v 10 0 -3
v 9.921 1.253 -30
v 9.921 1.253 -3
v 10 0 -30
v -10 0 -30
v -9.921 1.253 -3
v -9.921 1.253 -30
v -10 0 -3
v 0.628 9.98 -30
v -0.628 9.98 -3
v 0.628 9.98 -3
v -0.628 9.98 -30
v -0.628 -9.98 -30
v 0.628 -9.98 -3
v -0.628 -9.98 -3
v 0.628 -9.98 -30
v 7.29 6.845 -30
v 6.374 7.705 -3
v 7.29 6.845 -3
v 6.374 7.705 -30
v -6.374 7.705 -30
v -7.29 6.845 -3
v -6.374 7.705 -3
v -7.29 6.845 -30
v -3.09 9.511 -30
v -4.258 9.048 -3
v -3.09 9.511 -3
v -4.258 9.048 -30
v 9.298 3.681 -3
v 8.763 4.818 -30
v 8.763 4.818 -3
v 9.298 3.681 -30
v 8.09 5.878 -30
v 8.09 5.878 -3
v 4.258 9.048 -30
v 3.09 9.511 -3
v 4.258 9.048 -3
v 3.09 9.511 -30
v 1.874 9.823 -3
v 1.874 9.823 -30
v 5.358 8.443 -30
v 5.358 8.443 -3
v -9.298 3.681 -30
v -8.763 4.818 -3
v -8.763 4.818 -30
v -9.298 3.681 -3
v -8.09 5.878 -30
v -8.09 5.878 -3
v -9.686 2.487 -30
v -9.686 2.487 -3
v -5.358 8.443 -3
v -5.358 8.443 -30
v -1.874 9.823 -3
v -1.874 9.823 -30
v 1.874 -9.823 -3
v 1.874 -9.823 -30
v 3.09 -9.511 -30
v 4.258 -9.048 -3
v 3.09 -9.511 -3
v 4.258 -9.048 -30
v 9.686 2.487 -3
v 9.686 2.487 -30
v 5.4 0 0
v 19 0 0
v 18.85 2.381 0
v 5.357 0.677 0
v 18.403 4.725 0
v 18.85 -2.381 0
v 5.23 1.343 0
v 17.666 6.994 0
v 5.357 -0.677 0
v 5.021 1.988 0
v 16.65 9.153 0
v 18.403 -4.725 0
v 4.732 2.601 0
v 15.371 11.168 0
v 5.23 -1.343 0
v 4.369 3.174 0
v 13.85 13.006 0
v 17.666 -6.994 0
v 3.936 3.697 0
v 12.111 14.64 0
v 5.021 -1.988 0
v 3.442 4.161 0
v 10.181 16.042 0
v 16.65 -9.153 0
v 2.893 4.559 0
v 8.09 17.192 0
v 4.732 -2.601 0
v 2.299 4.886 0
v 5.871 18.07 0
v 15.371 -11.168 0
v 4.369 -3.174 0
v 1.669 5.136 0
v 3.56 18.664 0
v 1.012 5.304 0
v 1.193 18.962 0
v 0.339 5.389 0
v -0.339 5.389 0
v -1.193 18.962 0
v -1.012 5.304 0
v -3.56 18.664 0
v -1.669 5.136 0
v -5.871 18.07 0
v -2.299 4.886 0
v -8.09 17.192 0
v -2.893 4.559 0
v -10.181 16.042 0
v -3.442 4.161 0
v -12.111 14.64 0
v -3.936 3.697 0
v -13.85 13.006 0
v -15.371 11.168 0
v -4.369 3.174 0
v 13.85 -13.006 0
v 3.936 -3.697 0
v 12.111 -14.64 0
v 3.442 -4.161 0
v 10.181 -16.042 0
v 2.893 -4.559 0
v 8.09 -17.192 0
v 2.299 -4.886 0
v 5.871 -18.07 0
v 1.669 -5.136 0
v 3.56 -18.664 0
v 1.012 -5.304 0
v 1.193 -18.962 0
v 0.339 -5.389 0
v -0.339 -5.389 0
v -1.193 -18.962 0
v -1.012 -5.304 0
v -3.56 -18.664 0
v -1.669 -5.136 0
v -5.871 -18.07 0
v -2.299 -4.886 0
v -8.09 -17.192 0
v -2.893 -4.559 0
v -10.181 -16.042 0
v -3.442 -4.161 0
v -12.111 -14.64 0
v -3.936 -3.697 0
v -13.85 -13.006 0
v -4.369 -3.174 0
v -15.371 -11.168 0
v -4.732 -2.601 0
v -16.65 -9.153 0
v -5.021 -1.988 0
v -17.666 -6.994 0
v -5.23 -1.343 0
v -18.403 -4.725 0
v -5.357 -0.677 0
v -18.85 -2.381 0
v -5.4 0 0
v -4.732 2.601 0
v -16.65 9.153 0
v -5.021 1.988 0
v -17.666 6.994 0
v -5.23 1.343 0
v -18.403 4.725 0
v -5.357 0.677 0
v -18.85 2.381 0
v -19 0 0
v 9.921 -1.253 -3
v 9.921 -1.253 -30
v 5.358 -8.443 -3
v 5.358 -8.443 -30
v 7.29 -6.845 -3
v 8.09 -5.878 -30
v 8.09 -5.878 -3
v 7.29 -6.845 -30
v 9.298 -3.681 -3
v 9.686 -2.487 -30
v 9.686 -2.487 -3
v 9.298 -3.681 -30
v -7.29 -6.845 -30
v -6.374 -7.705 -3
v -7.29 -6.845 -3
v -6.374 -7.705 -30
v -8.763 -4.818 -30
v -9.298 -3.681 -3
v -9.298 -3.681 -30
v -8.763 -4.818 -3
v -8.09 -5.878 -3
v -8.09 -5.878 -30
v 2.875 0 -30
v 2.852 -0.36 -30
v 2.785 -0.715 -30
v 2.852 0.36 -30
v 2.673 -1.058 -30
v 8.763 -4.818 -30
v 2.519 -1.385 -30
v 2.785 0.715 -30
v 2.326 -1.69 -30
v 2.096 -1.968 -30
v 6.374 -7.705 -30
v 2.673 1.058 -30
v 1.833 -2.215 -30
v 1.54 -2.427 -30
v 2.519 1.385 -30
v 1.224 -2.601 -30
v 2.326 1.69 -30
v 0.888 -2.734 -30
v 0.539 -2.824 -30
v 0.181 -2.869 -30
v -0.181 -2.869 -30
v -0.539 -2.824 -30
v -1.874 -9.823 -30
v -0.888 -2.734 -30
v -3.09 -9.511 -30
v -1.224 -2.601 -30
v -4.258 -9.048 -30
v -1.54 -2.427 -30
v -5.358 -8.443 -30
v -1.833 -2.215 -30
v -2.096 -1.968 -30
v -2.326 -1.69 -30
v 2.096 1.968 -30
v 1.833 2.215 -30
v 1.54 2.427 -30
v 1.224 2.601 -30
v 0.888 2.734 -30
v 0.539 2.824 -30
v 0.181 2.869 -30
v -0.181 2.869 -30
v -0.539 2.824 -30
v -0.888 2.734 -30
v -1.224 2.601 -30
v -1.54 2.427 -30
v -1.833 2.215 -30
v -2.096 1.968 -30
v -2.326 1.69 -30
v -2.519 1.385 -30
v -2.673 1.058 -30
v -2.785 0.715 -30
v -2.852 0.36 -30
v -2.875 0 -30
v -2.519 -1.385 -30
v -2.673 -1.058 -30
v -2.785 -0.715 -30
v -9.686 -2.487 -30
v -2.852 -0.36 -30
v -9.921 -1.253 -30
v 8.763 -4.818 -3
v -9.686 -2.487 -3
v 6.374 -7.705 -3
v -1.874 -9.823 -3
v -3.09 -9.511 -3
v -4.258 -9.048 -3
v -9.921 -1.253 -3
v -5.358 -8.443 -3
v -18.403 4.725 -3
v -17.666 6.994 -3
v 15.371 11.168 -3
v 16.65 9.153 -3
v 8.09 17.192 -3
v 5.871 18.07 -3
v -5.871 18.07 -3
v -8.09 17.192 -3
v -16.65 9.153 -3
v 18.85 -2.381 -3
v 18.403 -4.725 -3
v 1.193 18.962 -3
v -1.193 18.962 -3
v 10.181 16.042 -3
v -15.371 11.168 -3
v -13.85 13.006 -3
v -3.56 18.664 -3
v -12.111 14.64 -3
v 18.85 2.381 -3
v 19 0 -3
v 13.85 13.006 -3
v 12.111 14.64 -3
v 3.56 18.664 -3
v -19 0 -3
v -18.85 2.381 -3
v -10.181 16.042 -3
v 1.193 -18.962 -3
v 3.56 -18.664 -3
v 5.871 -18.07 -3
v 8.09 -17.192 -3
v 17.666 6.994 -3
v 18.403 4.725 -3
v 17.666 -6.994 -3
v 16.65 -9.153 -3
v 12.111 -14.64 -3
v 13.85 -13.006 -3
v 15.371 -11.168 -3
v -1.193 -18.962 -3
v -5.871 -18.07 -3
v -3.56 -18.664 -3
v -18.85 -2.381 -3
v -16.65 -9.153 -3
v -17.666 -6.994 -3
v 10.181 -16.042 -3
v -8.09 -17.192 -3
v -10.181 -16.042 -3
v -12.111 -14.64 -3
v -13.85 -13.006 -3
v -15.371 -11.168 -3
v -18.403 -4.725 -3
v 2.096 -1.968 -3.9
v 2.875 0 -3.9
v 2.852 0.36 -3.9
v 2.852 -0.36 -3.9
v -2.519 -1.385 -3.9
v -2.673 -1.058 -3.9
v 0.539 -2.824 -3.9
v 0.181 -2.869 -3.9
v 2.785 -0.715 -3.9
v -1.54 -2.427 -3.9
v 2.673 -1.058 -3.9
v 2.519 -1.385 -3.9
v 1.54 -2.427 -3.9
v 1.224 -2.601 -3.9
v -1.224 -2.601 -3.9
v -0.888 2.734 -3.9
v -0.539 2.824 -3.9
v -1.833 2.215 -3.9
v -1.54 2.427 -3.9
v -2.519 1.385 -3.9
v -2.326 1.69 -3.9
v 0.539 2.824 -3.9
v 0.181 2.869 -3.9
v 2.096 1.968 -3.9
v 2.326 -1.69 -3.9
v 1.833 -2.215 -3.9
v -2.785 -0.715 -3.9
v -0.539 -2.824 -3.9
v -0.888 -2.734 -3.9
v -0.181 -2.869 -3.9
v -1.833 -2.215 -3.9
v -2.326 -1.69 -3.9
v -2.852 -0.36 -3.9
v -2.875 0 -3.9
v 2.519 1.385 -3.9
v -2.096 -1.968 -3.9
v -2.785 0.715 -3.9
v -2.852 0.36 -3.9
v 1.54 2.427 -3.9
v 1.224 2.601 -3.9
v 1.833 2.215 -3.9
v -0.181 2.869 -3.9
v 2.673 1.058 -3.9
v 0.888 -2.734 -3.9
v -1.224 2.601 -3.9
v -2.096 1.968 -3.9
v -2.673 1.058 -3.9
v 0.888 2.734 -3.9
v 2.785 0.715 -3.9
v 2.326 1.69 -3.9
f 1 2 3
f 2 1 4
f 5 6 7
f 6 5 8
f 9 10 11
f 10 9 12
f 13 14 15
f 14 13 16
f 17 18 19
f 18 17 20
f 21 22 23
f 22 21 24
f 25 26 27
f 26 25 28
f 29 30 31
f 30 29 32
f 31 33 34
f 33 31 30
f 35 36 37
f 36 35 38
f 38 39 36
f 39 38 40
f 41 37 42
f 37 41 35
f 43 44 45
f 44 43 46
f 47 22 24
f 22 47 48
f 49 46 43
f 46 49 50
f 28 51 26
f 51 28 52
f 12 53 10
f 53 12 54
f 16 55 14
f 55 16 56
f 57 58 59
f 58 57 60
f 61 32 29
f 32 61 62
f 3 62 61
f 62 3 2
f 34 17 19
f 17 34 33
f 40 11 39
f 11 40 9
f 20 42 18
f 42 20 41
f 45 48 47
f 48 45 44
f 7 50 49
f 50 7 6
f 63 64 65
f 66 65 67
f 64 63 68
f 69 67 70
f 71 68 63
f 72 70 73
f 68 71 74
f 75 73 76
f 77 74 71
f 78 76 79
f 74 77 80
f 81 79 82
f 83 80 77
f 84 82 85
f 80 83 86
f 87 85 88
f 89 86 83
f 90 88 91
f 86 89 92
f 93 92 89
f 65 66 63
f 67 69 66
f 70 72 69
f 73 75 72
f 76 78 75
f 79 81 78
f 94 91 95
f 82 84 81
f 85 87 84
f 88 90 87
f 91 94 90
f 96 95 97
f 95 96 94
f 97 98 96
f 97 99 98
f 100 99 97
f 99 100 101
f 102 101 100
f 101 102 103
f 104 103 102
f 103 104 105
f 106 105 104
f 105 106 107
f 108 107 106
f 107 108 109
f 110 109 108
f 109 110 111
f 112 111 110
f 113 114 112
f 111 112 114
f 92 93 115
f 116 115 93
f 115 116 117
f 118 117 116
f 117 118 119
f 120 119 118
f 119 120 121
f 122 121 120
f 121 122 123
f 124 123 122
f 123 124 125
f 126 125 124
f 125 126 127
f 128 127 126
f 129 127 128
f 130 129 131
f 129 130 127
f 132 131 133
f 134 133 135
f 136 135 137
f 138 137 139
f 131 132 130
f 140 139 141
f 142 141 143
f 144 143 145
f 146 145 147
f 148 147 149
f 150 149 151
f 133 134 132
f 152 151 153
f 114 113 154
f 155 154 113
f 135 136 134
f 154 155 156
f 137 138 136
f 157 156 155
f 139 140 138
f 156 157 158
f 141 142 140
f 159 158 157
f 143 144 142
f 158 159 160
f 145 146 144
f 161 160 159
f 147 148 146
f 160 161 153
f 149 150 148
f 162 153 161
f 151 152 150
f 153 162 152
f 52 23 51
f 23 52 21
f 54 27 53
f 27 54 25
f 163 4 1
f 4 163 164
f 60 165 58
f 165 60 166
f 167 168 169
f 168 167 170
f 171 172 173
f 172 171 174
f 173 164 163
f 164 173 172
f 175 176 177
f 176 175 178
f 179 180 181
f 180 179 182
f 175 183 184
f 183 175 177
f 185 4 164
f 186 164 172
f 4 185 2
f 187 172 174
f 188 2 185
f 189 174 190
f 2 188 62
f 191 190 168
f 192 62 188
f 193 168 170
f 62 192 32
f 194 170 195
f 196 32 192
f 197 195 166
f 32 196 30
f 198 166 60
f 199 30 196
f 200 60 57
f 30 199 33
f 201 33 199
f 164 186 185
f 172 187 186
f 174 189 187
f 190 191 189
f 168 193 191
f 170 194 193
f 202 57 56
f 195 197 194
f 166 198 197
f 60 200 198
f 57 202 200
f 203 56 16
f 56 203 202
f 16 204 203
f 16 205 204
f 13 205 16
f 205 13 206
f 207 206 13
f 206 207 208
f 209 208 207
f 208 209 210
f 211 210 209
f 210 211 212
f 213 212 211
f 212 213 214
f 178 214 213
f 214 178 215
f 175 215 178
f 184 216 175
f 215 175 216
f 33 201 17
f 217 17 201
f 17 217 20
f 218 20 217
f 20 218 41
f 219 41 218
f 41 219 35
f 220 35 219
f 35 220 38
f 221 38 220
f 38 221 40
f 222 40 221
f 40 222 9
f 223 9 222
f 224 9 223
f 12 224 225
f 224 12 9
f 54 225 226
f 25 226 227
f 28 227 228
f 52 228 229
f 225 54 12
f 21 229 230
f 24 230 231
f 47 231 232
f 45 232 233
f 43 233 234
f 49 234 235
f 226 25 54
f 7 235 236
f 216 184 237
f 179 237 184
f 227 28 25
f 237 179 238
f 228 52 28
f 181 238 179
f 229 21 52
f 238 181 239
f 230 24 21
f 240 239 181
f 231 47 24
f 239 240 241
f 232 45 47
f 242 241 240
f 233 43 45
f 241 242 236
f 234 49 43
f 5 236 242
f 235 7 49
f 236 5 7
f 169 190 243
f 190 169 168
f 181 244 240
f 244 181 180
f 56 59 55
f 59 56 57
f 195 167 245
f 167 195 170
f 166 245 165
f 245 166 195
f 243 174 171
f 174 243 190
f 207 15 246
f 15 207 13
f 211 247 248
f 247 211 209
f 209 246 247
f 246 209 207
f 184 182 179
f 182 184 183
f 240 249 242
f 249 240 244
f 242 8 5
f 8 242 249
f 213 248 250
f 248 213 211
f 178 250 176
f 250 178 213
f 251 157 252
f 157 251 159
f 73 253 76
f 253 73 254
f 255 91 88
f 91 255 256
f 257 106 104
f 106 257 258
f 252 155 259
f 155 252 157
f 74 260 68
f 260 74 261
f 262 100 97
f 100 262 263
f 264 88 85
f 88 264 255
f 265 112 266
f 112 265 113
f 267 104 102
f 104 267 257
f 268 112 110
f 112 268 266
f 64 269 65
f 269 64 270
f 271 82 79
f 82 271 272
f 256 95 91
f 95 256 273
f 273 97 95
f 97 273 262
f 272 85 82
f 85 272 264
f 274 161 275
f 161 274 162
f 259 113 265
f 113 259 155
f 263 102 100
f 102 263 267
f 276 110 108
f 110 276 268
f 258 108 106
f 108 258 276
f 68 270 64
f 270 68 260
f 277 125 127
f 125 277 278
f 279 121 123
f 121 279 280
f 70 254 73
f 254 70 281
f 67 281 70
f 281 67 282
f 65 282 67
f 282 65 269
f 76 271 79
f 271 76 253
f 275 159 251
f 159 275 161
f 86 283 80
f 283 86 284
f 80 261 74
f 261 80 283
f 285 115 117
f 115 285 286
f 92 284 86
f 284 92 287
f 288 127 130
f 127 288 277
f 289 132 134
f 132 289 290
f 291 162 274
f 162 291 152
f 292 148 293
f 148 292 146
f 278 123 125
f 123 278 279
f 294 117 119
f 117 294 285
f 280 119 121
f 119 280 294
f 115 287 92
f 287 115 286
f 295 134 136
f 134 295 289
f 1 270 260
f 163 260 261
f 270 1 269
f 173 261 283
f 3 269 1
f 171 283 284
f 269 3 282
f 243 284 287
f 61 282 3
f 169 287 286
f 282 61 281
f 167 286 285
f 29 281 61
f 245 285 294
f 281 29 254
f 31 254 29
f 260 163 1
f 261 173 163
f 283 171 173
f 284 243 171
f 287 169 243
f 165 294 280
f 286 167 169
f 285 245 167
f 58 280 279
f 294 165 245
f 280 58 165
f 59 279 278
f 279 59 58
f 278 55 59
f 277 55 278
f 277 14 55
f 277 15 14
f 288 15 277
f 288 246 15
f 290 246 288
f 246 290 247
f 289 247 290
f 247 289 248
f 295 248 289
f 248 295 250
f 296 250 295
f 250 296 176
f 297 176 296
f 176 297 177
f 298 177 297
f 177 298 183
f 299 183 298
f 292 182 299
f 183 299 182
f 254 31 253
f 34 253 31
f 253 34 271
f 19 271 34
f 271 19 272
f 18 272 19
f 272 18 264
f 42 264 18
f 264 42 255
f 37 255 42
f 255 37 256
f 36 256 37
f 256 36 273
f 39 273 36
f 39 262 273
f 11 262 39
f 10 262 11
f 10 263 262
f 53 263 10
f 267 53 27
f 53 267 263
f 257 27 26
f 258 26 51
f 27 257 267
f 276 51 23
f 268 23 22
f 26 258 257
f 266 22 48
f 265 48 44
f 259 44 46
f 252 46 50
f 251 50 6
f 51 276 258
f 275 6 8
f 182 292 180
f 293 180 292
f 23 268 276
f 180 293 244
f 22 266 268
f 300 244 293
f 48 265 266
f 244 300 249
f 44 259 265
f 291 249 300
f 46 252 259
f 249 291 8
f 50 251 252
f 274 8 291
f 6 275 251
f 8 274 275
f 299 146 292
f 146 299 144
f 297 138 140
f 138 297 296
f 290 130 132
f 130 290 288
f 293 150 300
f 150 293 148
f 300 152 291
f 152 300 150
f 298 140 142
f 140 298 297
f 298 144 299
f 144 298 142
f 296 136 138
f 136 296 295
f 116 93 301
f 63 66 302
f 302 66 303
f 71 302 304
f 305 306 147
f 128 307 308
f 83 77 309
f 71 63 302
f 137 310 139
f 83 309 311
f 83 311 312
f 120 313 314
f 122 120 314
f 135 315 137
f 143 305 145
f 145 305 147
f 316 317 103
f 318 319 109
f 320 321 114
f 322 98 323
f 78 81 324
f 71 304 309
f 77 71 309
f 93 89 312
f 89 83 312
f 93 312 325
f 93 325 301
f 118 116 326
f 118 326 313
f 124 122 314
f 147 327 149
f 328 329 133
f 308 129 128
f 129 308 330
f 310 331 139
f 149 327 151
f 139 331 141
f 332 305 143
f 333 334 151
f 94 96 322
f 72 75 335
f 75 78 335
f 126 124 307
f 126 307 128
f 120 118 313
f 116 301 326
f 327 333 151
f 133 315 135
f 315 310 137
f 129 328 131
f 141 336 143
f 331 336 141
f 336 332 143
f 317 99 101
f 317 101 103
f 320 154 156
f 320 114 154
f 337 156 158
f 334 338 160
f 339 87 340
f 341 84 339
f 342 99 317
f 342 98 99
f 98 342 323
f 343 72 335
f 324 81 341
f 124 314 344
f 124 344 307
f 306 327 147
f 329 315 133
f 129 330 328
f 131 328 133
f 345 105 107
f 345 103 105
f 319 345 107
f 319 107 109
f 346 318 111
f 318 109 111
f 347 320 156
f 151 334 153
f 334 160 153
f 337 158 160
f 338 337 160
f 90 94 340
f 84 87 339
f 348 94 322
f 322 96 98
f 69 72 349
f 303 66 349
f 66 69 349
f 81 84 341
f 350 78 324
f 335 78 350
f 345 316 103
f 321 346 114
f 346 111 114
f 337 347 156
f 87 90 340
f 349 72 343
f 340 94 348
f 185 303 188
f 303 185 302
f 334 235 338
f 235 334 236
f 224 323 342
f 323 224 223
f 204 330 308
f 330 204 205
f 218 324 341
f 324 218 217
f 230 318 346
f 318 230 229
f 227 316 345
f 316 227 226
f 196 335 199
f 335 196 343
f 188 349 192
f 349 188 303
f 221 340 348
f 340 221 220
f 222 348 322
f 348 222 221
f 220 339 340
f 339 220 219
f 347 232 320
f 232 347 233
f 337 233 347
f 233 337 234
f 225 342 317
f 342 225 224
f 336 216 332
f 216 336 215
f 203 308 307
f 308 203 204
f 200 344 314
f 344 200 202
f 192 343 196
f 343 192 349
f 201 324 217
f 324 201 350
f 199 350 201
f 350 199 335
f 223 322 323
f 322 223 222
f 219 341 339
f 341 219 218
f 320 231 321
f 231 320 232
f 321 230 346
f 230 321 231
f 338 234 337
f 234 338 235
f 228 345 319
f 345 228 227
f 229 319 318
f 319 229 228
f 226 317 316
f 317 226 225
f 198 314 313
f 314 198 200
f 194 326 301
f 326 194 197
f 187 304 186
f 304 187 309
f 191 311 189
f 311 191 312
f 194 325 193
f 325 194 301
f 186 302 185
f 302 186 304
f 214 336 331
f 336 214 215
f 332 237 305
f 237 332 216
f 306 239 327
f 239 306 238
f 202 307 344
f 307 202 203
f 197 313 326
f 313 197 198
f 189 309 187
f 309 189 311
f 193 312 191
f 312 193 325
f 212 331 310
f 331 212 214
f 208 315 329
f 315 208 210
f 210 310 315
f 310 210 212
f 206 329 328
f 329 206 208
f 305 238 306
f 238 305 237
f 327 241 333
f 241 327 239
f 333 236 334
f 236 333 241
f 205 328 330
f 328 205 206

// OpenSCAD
$fn = 50;


difference() {
	union() {
		translate(v = [0, 0, -30.0000000000]) {
			cylinder(h = 30, r = 10.0000000000);
		}
		translate(v = [0, 0, -3.0000000000]) {
			cylinder(h = 3, r = 19.0000000000);
		}
	}
	union() {
		translate(v = [0, 0, 0]) {
			rotate(a = [0, 0, 0]) {
				difference() {
					union() {
						#translate(v = [0, 0, -30.0000000000]) {
							cylinder(h = 30, r = 2.6000000000);
						}
						#translate(v = [0, 0, -3.9000000000]) {
							cylinder(h = 3.9000000000, r = 10.0000000000, r1 = 2.8750000000, r2 = 5.4000000000);
						}
						#translate(v = [0, 0, -30.0000000000]) {
							cylinder(h = 30, r = 2.8750000000);
						}
						#translate(v = [0, 0, -30.0000000000]) {
							cylinder(h = 30, r = 2.6000000000);
						}
					}
					union();
				}
			}
		}
	}
}
